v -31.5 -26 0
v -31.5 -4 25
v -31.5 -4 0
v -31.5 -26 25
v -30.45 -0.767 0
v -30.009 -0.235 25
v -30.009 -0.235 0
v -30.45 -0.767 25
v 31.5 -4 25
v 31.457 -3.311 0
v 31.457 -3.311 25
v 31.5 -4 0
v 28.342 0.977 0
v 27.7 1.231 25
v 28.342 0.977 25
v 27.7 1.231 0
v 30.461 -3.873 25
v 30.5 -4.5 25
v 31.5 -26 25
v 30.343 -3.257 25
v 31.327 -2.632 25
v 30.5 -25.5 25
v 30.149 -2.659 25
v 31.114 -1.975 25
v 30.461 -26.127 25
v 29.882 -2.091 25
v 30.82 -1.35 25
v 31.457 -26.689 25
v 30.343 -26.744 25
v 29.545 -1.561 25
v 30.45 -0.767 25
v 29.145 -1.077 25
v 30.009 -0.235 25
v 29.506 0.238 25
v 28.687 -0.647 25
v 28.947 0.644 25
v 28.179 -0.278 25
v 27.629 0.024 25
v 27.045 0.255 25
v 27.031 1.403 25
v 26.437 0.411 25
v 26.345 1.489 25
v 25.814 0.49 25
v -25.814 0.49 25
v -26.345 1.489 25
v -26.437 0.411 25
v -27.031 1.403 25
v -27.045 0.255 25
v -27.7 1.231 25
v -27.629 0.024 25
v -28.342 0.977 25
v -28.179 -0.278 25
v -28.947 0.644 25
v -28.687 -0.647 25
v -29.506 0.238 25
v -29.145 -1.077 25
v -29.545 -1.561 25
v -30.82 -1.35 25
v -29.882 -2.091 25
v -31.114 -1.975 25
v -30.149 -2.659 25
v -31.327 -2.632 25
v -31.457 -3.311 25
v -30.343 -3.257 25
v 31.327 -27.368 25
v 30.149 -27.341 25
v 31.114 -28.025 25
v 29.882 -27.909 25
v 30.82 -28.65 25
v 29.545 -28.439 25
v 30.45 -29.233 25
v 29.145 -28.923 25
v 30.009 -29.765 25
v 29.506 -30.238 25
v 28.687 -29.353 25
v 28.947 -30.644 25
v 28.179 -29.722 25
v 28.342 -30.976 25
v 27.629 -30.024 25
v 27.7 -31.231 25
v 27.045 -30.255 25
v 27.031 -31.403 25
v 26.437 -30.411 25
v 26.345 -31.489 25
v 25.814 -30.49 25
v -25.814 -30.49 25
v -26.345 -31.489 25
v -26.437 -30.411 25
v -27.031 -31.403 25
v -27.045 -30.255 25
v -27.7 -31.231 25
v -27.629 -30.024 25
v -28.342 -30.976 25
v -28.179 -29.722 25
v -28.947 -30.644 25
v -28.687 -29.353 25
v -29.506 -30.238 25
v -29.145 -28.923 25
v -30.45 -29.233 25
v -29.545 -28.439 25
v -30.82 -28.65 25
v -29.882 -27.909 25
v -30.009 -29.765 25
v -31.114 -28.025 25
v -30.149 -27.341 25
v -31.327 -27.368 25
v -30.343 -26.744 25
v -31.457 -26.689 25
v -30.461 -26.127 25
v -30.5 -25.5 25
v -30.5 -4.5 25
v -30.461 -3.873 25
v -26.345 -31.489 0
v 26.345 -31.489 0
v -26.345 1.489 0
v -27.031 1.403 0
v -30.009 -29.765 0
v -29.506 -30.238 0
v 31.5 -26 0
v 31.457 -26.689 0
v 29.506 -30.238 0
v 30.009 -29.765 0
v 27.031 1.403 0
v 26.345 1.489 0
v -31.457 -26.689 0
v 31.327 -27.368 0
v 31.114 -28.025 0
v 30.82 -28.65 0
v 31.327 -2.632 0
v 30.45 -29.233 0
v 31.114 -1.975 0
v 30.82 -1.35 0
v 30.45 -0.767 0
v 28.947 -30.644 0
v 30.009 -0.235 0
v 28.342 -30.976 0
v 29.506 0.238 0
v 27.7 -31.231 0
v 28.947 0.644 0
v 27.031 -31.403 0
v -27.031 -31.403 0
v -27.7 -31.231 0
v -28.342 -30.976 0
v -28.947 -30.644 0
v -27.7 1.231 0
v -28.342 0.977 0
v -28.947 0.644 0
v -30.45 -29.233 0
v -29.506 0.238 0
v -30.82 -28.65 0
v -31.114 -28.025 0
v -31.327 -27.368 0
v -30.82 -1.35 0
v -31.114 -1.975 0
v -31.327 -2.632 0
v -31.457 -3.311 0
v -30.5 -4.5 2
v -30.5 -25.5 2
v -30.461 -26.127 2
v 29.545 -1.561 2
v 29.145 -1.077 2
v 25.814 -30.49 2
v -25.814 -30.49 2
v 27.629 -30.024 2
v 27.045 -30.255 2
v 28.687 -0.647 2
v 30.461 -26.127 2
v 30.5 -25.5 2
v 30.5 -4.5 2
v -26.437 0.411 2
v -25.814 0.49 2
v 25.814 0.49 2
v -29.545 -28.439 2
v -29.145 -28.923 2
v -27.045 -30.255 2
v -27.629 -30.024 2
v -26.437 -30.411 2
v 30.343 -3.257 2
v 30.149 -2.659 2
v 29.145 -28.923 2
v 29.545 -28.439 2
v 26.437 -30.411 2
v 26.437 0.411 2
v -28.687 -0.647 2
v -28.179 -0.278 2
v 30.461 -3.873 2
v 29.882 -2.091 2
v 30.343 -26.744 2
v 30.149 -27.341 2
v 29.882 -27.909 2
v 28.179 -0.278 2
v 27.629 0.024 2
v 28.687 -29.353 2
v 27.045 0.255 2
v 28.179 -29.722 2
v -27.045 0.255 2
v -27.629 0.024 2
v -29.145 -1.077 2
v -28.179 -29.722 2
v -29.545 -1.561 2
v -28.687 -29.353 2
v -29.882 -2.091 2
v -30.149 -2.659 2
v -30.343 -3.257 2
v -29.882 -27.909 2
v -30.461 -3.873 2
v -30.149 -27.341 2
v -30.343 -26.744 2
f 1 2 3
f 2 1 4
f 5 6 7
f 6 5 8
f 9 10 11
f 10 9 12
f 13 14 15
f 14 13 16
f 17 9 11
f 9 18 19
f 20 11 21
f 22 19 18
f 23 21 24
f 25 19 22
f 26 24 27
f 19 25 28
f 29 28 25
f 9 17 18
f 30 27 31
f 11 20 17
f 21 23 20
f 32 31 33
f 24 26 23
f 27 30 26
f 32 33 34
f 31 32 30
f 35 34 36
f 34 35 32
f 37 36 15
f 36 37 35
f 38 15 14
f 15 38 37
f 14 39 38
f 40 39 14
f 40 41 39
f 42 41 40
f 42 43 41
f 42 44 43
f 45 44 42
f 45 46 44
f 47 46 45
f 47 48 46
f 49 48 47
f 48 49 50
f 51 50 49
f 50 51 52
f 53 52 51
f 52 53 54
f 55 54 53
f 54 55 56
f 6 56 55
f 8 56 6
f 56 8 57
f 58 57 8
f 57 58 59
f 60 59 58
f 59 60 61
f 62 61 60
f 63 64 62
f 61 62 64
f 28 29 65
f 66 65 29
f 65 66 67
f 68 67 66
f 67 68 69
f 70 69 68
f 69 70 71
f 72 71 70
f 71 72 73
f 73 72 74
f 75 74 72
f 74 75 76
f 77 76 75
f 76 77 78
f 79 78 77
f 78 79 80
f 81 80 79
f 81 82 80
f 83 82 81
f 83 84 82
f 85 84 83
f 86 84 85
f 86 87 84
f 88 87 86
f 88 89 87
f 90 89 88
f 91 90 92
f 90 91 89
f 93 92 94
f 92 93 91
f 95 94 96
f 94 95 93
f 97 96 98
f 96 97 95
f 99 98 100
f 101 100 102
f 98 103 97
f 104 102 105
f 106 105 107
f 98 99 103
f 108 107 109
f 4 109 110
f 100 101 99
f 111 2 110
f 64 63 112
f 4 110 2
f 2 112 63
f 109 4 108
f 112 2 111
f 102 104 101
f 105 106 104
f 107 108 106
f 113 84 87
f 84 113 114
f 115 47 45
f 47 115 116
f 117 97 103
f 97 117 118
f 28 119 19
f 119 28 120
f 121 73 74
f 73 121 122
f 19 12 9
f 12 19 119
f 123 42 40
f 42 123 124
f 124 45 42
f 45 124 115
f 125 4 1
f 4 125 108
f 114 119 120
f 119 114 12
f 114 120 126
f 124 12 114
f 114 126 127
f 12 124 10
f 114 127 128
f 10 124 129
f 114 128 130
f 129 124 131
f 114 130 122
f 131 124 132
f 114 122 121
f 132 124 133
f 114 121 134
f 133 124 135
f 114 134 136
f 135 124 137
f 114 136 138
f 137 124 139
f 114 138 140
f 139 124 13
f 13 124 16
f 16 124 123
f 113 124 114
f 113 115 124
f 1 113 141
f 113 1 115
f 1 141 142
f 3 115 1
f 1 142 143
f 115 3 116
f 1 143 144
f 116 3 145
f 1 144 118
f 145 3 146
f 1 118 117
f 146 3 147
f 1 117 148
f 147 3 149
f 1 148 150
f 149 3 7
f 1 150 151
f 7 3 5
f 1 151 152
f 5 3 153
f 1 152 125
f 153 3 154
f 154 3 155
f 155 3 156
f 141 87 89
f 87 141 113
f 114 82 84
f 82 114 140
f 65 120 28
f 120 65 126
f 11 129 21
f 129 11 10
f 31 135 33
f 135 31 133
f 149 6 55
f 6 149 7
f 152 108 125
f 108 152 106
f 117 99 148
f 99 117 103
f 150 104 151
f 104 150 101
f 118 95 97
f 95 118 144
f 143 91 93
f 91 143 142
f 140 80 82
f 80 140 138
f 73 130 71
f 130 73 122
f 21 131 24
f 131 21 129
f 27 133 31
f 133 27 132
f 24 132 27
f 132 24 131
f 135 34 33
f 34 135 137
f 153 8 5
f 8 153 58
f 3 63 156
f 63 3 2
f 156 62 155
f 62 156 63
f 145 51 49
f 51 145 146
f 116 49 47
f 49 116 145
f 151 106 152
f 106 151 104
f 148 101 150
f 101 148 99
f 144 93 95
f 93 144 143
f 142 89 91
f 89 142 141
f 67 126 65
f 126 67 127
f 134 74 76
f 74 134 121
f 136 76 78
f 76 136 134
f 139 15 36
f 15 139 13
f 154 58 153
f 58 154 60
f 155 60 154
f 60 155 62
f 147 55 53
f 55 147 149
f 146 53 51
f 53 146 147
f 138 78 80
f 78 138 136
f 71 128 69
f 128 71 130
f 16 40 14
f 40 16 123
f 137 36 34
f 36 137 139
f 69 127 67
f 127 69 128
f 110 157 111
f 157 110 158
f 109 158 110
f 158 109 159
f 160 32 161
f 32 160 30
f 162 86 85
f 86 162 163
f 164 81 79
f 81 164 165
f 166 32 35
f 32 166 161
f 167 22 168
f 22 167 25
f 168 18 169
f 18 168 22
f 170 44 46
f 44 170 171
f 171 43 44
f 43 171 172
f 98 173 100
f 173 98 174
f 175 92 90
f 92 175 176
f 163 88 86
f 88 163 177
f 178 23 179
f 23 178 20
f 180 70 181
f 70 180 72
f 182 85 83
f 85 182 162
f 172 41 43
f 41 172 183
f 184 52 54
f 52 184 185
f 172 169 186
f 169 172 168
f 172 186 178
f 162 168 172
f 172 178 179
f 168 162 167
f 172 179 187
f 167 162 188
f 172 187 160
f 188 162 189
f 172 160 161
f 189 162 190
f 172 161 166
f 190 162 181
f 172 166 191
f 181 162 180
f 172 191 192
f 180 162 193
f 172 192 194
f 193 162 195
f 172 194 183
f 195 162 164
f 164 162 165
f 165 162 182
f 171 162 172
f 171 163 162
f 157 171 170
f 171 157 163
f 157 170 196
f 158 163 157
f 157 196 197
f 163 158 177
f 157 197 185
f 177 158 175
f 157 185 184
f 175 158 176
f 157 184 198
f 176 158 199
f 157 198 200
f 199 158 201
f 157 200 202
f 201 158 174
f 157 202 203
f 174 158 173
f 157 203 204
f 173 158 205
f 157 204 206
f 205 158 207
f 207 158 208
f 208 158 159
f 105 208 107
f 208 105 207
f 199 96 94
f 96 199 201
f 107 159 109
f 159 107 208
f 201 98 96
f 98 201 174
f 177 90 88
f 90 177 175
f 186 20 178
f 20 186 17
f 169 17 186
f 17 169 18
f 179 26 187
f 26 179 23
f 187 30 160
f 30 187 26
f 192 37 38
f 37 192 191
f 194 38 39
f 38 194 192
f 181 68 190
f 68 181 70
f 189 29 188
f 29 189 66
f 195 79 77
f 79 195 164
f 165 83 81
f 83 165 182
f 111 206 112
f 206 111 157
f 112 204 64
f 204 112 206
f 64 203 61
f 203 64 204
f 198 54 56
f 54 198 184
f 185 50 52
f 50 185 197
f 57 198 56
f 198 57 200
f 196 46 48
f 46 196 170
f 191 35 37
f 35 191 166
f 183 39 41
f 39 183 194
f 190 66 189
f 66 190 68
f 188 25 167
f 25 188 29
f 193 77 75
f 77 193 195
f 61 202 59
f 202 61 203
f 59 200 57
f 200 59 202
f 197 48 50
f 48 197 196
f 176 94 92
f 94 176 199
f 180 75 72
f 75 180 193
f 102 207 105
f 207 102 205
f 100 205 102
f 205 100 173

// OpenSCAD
$fn = 50;


difference() {
	union() {
		translate(v = [0, -15.0000000000, 0]) {
			hull() {
				translate(v = [-26.0000000000, 11.0000000000, 0]) {
					cylinder(h = 25, r = 5.5000000000);
				}
				translate(v = [26.0000000000, 11.0000000000, 0]) {
					cylinder(h = 25, r = 5.5000000000);
				}
				translate(v = [-26.0000000000, -11.0000000000, 0]) {
					cylinder(h = 25, r = 5.5000000000);
				}
				translate(v = [26.0000000000, -11.0000000000, 0]) {
					cylinder(h = 25, r = 5.5000000000);
				}
			}
		}
	}
	union() {
		translate(v = [0, -15.0000000000, 2]) {
			hull() {
				translate(v = [-25.5000000000, 10.5000000000, 0]) {
					cylinder(h = 50, r = 5);
				}
				translate(v = [25.5000000000, 10.5000000000, 0]) {
					cylinder(h = 50, r = 5);
				}
				translate(v = [-25.5000000000, -10.5000000000, 0]) {
					cylinder(h = 50, r = 5);
				}
				translate(v = [25.5000000000, -10.5000000000, 0]) {
					cylinder(h = 50, r = 5);
				}
			}
		}
	}
}
